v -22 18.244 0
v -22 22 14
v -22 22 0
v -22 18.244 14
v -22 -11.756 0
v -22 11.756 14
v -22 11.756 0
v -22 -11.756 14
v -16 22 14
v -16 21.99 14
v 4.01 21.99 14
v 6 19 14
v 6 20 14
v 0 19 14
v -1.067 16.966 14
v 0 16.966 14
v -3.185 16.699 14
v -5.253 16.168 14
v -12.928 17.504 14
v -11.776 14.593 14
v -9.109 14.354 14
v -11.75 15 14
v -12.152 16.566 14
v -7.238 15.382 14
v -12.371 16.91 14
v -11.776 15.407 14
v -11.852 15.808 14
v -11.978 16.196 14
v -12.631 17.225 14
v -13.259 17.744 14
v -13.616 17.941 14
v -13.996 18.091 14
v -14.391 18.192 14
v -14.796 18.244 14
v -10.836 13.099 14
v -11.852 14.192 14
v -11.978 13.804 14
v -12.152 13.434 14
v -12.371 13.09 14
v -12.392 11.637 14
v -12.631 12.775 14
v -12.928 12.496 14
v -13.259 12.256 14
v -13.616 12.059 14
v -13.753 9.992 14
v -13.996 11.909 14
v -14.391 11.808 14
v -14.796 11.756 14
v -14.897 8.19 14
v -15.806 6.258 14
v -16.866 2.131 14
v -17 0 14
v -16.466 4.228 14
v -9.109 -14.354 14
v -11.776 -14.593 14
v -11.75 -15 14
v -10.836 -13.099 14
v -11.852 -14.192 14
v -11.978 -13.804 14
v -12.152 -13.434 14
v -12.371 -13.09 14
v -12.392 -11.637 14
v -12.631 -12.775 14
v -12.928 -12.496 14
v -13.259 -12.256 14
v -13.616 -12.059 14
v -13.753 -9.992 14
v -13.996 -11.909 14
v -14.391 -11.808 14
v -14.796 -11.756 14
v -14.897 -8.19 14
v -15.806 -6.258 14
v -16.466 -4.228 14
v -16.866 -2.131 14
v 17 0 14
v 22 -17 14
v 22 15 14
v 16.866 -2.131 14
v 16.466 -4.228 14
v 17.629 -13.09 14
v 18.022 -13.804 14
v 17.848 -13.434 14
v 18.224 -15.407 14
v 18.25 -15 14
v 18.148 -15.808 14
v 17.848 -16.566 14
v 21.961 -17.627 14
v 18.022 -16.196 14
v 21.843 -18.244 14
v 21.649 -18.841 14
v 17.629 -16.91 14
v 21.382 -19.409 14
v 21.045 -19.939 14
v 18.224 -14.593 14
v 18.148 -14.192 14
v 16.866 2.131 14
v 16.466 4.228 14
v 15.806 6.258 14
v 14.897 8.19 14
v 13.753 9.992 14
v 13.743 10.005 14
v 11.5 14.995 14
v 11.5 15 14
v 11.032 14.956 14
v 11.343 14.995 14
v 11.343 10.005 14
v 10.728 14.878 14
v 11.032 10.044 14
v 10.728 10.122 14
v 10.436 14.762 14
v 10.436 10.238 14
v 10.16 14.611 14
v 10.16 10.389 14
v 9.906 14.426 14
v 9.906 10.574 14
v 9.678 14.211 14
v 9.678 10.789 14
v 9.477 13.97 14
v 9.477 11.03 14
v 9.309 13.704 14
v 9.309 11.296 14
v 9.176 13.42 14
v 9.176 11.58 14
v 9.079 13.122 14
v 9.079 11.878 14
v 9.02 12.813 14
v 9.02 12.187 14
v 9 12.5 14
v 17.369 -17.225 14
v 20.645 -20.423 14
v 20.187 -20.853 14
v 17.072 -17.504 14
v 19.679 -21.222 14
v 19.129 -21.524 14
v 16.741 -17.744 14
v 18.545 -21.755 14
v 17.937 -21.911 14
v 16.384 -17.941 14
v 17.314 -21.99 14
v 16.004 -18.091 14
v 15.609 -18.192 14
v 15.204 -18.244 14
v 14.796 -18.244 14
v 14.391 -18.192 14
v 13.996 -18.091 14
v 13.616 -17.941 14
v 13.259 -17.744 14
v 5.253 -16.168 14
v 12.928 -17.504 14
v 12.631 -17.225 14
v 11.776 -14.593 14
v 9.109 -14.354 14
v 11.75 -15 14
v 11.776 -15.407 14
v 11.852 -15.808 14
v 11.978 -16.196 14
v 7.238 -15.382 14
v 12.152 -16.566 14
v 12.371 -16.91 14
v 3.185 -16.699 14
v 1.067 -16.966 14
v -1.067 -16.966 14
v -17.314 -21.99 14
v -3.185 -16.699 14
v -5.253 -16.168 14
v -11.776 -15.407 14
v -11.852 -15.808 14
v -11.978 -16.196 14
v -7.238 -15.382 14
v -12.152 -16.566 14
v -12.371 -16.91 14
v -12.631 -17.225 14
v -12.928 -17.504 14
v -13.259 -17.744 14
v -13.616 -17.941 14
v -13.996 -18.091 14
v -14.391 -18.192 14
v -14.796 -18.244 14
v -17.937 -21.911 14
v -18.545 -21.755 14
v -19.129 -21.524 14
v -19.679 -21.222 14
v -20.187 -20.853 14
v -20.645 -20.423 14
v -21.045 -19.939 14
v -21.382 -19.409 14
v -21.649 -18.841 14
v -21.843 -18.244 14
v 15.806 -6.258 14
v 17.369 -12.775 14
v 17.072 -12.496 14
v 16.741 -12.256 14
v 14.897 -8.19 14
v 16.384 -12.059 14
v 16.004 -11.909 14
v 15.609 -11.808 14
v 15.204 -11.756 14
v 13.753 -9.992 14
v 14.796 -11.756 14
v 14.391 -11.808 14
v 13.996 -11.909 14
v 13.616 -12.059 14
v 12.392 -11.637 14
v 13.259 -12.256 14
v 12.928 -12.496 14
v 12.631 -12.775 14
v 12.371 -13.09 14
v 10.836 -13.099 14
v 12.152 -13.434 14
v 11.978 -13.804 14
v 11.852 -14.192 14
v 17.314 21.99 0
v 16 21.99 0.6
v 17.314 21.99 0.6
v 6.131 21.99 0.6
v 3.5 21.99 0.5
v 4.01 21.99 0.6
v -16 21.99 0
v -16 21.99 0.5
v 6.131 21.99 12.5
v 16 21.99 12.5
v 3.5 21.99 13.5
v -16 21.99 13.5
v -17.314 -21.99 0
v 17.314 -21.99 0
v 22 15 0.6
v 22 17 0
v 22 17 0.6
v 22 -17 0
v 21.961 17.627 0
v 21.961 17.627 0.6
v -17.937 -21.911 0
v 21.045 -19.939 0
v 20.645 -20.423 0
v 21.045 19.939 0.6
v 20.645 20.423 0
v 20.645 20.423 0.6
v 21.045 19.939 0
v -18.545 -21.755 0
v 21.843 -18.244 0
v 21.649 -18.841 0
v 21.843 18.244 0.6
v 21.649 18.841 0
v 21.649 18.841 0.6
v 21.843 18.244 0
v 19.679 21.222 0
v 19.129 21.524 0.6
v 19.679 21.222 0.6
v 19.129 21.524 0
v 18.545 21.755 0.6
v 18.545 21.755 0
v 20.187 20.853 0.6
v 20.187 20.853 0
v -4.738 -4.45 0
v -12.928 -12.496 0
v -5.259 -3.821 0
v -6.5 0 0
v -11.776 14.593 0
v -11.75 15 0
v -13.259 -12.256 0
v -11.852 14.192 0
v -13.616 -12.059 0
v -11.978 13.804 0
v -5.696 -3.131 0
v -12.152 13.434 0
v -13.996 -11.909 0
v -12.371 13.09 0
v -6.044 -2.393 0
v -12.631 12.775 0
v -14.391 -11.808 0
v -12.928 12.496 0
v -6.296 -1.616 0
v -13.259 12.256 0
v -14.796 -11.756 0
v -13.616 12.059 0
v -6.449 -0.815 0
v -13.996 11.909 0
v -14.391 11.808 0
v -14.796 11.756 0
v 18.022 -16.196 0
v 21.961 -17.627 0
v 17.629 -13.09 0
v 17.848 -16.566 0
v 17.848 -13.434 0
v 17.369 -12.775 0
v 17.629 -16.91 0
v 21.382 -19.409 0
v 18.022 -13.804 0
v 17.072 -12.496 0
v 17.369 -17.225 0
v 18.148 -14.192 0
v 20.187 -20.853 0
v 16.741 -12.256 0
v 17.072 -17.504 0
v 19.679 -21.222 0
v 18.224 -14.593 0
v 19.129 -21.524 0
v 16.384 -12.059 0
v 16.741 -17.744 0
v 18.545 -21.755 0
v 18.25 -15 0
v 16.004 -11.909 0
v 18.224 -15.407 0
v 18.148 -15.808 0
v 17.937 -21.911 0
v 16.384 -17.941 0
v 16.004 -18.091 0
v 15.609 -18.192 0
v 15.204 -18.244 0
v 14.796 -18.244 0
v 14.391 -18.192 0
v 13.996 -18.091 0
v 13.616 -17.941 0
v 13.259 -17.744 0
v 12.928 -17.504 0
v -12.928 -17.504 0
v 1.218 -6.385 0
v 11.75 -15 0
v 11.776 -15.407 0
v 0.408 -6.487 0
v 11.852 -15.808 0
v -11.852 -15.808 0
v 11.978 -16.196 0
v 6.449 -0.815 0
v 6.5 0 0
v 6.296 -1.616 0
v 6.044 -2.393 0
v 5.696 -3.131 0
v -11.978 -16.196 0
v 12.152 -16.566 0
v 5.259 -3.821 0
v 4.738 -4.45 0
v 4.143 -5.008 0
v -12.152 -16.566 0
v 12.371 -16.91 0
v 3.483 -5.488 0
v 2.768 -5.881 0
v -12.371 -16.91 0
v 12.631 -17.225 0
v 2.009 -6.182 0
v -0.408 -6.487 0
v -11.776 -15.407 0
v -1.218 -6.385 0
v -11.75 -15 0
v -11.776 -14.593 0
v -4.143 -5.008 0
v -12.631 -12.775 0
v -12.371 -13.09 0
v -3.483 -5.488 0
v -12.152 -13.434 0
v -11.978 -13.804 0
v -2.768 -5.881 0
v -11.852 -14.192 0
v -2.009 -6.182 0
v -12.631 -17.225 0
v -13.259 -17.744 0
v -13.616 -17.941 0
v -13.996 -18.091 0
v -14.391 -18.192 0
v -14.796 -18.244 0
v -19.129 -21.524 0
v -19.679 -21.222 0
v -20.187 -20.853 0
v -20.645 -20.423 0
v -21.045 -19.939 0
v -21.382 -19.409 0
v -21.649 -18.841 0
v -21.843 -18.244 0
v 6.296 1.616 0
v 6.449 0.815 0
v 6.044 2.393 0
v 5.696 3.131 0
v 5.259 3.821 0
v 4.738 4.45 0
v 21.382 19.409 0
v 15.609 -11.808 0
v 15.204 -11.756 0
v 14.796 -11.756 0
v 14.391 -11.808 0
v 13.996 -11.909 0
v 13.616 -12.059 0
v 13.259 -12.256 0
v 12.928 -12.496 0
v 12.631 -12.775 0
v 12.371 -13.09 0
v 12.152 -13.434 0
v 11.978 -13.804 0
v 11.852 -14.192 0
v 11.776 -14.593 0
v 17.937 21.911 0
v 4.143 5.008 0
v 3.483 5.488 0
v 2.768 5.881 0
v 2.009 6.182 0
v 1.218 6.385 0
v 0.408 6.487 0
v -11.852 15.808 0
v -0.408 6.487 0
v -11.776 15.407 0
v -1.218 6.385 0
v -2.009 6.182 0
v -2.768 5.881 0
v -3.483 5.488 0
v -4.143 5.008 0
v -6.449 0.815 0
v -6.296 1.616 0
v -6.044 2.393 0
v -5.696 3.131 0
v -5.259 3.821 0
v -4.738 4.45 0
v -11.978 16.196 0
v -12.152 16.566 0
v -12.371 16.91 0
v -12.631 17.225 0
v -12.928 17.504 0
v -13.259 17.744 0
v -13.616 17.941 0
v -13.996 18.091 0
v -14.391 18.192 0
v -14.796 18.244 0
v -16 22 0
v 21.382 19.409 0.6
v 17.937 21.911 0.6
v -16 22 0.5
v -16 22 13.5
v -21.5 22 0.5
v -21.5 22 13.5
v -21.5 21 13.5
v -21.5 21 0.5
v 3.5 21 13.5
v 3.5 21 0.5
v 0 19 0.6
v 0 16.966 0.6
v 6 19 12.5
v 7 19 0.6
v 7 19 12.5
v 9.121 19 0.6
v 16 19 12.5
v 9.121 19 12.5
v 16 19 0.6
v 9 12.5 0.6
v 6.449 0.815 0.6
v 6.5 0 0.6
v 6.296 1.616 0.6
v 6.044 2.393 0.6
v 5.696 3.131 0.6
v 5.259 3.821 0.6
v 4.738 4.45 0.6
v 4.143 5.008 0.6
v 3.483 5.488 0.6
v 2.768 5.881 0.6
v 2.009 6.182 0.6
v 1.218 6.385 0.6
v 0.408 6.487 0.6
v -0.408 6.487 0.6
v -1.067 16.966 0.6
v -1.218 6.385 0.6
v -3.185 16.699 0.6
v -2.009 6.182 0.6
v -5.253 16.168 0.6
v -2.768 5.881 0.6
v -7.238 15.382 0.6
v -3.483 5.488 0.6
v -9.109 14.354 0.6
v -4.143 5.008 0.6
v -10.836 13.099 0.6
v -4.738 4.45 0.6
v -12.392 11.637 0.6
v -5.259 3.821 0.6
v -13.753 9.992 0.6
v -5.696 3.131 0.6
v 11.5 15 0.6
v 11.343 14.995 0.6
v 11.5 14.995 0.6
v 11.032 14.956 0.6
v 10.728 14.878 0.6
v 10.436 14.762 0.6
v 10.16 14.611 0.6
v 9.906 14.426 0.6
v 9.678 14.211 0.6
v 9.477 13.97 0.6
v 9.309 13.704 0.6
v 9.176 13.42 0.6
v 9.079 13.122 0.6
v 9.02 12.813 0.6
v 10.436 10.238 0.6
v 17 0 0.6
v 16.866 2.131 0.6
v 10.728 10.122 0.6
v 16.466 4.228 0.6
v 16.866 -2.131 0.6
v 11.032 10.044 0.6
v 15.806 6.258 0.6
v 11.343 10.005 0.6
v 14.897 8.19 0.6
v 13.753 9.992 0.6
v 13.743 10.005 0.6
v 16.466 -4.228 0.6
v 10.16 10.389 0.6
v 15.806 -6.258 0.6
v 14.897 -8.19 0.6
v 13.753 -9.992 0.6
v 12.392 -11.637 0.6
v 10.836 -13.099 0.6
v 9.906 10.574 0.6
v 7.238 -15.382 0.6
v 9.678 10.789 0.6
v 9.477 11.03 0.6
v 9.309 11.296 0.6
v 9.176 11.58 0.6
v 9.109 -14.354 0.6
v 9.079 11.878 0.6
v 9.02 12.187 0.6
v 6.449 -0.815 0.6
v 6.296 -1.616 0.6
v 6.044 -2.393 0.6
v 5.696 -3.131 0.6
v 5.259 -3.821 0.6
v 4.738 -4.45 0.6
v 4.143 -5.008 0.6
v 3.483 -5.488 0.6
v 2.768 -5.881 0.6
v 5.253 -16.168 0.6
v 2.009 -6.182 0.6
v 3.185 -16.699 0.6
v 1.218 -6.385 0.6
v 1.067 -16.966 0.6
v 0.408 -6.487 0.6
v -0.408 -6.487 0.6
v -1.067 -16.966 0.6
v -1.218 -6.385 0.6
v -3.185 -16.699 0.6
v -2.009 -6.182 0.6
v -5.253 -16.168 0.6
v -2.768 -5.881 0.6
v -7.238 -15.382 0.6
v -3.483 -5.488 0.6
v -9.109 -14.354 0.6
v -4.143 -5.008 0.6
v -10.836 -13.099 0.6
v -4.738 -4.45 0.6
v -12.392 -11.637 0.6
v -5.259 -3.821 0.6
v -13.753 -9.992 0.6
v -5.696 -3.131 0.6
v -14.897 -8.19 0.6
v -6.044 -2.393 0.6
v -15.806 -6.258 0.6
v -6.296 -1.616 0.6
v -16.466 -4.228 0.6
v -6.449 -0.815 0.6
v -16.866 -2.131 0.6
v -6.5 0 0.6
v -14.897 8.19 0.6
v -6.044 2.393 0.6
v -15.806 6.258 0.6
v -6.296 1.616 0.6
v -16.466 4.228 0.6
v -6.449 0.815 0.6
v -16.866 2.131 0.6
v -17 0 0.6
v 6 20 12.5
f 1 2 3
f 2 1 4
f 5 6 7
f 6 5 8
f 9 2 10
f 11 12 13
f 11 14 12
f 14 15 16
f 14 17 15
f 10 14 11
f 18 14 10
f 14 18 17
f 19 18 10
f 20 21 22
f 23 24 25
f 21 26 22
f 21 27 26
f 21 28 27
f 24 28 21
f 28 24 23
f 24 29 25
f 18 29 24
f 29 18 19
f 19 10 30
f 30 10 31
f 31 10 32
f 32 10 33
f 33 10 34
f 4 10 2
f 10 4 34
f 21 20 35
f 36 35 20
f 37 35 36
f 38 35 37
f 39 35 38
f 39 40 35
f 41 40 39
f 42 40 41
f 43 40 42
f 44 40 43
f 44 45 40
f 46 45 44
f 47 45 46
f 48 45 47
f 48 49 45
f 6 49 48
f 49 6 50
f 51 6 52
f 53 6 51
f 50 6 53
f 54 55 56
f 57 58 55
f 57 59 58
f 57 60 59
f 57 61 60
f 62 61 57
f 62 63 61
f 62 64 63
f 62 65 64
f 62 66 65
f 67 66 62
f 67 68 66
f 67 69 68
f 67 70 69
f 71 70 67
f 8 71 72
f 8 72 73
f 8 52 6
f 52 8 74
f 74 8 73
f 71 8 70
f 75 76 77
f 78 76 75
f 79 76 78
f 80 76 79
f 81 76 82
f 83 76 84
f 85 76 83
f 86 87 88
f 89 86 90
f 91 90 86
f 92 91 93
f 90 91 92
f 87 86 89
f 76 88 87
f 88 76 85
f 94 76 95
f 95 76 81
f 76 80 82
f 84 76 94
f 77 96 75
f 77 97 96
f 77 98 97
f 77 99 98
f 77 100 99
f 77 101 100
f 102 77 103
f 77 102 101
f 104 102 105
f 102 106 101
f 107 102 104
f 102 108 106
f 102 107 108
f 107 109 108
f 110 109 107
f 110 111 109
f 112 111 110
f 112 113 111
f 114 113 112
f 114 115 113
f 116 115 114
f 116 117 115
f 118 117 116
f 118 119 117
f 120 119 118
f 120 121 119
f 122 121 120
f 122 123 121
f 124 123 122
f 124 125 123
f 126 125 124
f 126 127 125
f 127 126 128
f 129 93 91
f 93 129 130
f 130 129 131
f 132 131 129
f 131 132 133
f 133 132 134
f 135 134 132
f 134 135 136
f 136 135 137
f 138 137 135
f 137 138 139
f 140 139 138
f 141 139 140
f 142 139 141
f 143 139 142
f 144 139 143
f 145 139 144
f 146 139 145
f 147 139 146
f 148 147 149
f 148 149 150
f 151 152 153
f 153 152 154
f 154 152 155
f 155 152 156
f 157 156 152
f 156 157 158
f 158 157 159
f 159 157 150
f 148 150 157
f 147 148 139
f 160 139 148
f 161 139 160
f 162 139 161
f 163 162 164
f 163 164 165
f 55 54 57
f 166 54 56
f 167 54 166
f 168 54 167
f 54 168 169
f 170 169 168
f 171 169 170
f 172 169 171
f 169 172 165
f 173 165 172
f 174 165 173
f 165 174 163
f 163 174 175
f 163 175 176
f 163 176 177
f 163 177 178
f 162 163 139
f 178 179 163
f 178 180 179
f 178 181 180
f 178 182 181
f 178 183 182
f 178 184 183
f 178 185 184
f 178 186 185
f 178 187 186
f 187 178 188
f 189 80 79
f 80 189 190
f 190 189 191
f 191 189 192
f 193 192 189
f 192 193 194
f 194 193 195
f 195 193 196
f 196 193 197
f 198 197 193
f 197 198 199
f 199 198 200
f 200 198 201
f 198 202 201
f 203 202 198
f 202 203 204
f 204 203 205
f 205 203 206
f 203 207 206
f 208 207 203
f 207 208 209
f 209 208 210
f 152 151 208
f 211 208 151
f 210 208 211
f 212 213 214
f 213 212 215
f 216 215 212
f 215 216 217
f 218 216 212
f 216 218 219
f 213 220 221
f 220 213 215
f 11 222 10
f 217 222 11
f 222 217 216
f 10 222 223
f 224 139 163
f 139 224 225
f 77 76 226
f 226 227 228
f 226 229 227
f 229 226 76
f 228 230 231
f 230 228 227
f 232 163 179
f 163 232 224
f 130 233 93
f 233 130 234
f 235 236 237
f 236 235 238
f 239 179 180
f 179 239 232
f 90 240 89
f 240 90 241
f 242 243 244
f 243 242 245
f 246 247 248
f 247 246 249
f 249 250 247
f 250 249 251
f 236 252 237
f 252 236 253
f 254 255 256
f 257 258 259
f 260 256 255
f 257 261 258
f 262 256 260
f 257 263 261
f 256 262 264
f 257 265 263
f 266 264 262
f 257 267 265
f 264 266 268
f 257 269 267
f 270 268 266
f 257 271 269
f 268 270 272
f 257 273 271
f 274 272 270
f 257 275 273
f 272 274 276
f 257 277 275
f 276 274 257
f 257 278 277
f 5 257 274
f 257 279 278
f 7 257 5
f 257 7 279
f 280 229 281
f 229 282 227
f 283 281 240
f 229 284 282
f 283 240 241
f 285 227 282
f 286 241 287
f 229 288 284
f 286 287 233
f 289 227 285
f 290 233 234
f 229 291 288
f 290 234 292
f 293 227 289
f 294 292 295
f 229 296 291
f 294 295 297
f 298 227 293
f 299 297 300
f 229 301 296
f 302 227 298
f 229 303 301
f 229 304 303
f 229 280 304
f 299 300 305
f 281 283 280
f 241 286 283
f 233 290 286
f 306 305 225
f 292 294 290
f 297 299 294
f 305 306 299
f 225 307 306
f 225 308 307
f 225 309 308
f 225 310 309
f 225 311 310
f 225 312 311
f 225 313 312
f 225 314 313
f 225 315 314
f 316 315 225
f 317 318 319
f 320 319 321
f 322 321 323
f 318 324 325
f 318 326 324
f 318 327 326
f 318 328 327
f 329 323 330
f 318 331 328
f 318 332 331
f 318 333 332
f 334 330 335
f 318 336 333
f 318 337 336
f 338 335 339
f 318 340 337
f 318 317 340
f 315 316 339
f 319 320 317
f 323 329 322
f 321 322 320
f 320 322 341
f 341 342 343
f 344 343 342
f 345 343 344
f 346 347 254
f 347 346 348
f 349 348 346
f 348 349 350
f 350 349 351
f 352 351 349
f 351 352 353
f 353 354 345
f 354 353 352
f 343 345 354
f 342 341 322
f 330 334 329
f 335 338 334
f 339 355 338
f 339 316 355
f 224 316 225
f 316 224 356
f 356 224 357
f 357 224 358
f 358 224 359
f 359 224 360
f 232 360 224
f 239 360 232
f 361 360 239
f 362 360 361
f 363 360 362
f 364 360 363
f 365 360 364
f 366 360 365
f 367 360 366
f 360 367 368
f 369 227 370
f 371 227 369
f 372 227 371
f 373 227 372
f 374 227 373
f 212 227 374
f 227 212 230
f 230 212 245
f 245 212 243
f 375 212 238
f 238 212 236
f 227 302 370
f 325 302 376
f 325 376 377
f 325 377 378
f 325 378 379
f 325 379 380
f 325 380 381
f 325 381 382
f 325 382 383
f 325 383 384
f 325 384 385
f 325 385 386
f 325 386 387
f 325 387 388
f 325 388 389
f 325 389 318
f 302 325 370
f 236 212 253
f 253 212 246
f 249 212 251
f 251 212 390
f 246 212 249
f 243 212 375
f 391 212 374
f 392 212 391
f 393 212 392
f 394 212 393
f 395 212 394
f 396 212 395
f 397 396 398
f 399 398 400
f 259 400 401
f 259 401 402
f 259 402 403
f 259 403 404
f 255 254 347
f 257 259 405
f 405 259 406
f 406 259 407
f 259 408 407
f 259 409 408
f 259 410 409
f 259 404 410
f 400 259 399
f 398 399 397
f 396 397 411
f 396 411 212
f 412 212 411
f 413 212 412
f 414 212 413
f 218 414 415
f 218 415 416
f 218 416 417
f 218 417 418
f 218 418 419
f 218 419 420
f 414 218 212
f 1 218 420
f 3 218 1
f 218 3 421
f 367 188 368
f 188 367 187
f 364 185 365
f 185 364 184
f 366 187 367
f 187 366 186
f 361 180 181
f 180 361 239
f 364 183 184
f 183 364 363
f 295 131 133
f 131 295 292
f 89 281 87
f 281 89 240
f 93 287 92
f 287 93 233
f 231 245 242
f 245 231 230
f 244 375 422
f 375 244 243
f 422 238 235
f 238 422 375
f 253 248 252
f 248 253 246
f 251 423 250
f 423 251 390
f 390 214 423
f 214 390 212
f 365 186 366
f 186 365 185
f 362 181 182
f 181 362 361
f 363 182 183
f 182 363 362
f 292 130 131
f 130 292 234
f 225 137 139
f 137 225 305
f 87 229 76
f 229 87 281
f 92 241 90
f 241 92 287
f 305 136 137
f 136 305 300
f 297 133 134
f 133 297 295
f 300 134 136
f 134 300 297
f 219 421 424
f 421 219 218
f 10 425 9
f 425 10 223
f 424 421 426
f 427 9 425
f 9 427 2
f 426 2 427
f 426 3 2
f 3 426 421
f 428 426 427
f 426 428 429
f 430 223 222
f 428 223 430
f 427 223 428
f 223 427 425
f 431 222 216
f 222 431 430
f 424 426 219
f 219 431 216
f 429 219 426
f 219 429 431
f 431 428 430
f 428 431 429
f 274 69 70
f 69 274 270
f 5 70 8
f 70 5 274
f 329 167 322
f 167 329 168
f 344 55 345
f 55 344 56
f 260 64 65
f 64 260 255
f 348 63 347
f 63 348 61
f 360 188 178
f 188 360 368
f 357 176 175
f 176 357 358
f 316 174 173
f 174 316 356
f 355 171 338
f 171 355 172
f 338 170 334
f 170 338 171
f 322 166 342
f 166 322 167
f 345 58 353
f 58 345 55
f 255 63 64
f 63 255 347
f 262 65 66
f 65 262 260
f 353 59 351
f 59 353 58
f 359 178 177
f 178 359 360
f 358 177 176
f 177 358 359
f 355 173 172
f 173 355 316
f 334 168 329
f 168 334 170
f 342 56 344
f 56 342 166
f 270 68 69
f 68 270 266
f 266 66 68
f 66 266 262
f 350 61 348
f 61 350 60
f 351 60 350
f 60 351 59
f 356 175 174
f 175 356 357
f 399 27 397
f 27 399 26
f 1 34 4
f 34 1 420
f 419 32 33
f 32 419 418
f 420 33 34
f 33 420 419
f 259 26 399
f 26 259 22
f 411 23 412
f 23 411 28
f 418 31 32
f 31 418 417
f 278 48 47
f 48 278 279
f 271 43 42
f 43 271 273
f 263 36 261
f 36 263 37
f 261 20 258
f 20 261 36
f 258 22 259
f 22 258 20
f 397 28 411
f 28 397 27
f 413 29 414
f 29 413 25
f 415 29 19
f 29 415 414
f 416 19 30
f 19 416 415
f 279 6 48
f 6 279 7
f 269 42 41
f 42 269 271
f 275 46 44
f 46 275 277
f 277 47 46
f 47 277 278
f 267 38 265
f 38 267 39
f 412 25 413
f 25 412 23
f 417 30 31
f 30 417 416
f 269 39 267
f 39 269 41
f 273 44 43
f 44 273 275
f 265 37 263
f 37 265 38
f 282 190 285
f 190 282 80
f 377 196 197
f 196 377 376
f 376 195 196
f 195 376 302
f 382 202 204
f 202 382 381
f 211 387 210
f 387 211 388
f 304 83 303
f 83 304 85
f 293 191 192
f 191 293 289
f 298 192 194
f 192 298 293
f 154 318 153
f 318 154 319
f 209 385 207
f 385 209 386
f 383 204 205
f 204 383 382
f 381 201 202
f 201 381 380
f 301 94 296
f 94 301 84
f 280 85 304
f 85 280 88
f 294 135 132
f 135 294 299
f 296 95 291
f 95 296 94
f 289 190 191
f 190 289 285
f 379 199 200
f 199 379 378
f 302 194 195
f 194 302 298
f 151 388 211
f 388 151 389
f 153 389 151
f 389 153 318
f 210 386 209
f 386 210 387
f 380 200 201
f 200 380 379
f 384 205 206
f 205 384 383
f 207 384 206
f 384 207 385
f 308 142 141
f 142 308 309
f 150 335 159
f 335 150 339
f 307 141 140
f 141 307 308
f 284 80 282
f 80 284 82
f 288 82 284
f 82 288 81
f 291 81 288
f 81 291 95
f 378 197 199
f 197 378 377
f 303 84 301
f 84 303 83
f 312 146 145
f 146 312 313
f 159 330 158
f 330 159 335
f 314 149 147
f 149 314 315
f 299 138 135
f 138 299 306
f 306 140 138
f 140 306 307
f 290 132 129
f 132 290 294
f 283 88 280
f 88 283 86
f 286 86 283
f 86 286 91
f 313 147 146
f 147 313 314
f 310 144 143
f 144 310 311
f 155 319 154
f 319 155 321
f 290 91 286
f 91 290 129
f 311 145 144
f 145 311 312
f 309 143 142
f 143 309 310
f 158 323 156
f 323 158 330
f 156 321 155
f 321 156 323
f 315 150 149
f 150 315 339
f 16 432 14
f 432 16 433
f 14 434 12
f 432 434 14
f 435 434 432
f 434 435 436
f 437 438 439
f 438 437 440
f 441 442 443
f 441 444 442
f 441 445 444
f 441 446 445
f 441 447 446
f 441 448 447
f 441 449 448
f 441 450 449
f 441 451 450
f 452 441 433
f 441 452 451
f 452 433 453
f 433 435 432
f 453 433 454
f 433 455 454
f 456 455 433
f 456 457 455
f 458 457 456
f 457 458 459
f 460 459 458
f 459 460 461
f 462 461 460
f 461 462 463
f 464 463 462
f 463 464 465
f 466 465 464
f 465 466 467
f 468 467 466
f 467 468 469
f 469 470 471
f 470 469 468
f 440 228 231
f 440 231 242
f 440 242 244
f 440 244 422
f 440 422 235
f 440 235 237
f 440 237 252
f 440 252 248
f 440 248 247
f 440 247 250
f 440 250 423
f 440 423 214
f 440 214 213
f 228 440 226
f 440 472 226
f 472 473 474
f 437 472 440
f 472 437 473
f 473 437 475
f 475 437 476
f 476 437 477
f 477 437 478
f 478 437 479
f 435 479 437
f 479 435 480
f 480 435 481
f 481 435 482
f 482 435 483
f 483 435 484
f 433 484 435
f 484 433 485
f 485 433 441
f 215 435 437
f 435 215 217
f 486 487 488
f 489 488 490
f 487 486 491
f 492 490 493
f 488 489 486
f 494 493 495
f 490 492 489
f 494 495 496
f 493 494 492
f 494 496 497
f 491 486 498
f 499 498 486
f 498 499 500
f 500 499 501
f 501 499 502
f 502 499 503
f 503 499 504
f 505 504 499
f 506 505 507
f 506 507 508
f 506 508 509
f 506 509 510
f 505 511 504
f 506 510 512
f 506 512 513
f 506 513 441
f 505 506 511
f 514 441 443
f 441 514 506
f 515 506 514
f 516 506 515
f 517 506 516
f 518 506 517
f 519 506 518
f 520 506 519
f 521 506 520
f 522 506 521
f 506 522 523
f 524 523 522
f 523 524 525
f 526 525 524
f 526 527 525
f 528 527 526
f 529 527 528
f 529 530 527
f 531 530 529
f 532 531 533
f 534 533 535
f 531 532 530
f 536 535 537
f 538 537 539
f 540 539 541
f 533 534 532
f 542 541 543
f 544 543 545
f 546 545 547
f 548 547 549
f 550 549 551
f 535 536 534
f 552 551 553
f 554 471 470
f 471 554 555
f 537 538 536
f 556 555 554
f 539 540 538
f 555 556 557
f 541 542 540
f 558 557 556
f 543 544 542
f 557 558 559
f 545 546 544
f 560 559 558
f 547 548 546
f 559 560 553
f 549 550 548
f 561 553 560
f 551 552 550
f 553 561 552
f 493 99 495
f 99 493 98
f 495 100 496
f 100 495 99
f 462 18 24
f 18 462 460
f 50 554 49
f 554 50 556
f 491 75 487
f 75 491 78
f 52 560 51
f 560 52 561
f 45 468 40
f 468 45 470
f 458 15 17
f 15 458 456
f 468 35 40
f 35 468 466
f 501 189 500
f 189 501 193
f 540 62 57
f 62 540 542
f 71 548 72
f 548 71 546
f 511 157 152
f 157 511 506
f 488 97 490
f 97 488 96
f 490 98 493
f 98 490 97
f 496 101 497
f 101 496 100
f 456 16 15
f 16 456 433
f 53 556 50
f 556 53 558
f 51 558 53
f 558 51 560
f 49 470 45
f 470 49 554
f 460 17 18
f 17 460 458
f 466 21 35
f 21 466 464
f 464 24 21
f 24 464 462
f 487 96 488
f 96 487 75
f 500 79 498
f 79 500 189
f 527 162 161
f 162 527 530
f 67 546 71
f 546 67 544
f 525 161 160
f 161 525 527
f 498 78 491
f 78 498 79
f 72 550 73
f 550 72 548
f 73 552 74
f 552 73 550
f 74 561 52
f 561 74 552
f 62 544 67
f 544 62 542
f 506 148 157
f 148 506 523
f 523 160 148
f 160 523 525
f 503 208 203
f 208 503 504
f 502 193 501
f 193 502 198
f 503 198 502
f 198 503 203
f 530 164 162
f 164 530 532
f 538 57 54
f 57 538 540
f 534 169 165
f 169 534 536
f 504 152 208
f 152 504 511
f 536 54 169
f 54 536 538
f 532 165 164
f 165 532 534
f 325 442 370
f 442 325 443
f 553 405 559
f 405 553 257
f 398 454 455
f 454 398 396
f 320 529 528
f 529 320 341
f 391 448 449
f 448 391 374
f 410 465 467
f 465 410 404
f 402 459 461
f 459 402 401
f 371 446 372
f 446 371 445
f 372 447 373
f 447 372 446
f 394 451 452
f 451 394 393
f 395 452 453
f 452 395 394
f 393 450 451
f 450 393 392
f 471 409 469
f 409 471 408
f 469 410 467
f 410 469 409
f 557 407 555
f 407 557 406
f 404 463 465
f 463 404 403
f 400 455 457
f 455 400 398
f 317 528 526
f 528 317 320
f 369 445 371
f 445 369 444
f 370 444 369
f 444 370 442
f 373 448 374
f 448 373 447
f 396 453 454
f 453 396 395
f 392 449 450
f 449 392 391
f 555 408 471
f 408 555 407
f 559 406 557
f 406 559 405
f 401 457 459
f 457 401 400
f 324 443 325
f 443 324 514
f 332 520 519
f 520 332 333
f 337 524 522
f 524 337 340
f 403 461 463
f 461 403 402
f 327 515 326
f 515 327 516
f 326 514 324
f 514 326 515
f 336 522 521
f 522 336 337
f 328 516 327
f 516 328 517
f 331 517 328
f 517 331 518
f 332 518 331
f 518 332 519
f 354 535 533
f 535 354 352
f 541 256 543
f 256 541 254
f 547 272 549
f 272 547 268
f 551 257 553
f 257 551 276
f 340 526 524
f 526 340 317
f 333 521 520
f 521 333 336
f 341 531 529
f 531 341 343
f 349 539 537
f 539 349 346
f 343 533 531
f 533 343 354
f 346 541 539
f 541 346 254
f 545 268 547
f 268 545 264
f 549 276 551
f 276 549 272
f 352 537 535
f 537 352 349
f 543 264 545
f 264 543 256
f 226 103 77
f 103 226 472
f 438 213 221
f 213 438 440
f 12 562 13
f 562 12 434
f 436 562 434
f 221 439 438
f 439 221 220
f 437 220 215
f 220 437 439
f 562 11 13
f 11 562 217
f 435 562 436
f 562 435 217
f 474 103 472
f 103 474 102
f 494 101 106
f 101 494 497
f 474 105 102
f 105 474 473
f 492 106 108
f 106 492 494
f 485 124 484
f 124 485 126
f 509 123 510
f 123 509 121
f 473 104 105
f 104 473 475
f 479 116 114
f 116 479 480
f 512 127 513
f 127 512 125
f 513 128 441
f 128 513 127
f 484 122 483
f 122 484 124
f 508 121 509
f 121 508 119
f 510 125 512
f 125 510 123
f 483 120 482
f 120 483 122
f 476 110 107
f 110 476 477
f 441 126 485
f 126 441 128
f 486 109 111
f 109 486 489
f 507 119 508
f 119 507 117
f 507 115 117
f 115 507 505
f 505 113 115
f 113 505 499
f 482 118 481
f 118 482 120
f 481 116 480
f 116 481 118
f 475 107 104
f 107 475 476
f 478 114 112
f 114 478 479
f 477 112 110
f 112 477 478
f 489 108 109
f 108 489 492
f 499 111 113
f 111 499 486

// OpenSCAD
$fn = 50;


union() {
	difference() {
		union() {
			translate(v = [0, 0, 0]) {
				rotate(a = [0, 0, 0]) {
					hull() {
						translate(v = [-17.0000000000, 17.0000000000, 0]) {
							rotate(a = [0, 0, 0]) {
								translate(v = [0, 0, 0]) {
									rotate(a = [0, 0, 0]) {
										cylinder(h = 14, r = 5);
									}
								}
							}
						}
						translate(v = [17.0000000000, 17.0000000000, 0]) {
							rotate(a = [0, 0, 0]) {
								translate(v = [0, 0, 0]) {
									rotate(a = [0, 0, 0]) {
										cylinder(h = 14, r = 5);
									}
								}
							}
						}
						translate(v = [-17.0000000000, -17.0000000000, 0]) {
							rotate(a = [0, 0, 0]) {
								translate(v = [0, 0, 0]) {
									rotate(a = [0, 0, 0]) {
										cylinder(h = 14, r = 5);
									}
								}
							}
						}
						translate(v = [17.0000000000, -17.0000000000, 0]) {
							rotate(a = [0, 0, 0]) {
								translate(v = [0, 0, 0]) {
									rotate(a = [0, 0, 0]) {
										cylinder(h = 14, r = 5);
									}
								}
							}
						}
					}
				}
			}
			translate(v = [-22.0000000000, 16.0000000000, 0]) {
				rotate(a = [0, 0, 0]) {
					cube(size = [6, 6, 14]);
				}
			}
		}
		union() {
			#translate(v = [-21.5000000000, 21.0000000000, 0.5000000000]) {
				rotate(a = [0, 0, 0]) {
					cube(size = [25, 1, 13.0000000000]);
				}
			}
			translate(v = [-22.5000000000, -15.0000000000, -125]) {
				rotate(a = [0, 0, 0]) {
					hull() {
						translate(v = [7.5000000000, 0, 0]) {
							rotate(a = [0, 0, 0]) {
								translate(v = [0, 0, 0]) {
									rotate(a = [0, 0, 0]) {
										cylinder(h = 250, r = 3.2500000000);
									}
								}
							}
						}
						translate(v = [-7.5000000000, 0, 0]) {
							rotate(a = [0, 0, 0]) {
								translate(v = [0, 0, 0]) {
									rotate(a = [0, 0, 0]) {
										cylinder(h = 250, r = 3.2500000000);
									}
								}
							}
						}
					}
				}
			}
			translate(v = [-22.5000000000, 15.0000000000, -125]) {
				rotate(a = [0, 0, 0]) {
					hull() {
						translate(v = [7.5000000000, 0, 0]) {
							rotate(a = [0, 0, 0]) {
								translate(v = [0, 0, 0]) {
									rotate(a = [0, 0, 0]) {
										cylinder(h = 250, r = 3.2500000000);
									}
								}
							}
						}
						translate(v = [-7.5000000000, 0, 0]) {
							rotate(a = [0, 0, 0]) {
								translate(v = [0, 0, 0]) {
									rotate(a = [0, 0, 0]) {
										cylinder(h = 250, r = 3.2500000000);
									}
								}
							}
						}
					}
				}
			}
			translate(v = [15.0000000000, -15.0000000000, -125.0000000000]) {
				rotate(a = [0, 0, 0]) {
					cylinder(h = 250, r = 3.2500000000);
				}
			}
			translate(v = [0.0000000000, 11.0000000000, 0.6000000000]) {
				rotate(a = [0, 0, 0]) {
					cube(size = [11, 8, 16.4000000000]);
				}
			}
			translate(v = [0, 0, 0.6000000000]) {
				rotate(a = [0, 0, 0]) {
					cylinder(h = 16.4000000000, r = 17.0000000000);
				}
			}
			translate(v = [0, 0, -7.0000000000]) {
				rotate(a = [0, 0, 0]) {
					cylinder(h = 14, r = 6.5000000000);
				}
			}
			translate(v = [0.0000000000, 15.0000000000, 0.6000000000]) {
				rotate(a = [0, 0, 0]) {
					cube(size = [22.0000000000, 4, 16.4000000000]);
				}
			}
			translate(v = [16.0000000000, 15.0000000000, 0.6000000000]) {
				rotate(a = [0, 0, 0]) {
					cube(size = [6, 7, 16.4000000000]);
				}
			}
			translate(v = [6.0000000000, 15.0000000000, 12.5000000000]) {
				rotate(a = [0, 0, 0]) {
					cube(size = [16, 7, 1.5000000000]);
				}
			}
			translate(v = [3.2500000000, 22.7500000000, 0.6000000000]) {
				rotate(a = [0, 0, -45]) {
					cube(size = [7.5000000000, 1.5000000000, 16.4000000000]);
				}
			}
			translate(v = [2.5000000000, 10.0000000000, 0.6000000000]) {
				rotate(a = [0, 0, 0]) {
					cube(size = [9.0000000000, 5, 13.4000000000]);
				}
			}
		}
	}
	union() {
		translate(v = [14, 12.5000000000, 0]) {
			rotate(a = [0, 0, 0]) {
				hull() {
					translate(v = [2.5000000000, 0, 0]) {
						rotate(a = [0, 0, 0]) {
							#translate(v = [0, 0, 0]) {
								rotate(a = [0, 0, 0]) {
									cylinder(h = 14, r = 2.5000000000);
								}
							}
						}
					}
					translate(v = [-2.5000000000, 0, 0]) {
						rotate(a = [0, 0, 0]) {
							#translate(v = [0, 0, 0]) {
								rotate(a = [0, 0, 0]) {
									cylinder(h = 14, r = 2.5000000000);
								}
							}
						}
					}
				}
			}
		}
	}
}
